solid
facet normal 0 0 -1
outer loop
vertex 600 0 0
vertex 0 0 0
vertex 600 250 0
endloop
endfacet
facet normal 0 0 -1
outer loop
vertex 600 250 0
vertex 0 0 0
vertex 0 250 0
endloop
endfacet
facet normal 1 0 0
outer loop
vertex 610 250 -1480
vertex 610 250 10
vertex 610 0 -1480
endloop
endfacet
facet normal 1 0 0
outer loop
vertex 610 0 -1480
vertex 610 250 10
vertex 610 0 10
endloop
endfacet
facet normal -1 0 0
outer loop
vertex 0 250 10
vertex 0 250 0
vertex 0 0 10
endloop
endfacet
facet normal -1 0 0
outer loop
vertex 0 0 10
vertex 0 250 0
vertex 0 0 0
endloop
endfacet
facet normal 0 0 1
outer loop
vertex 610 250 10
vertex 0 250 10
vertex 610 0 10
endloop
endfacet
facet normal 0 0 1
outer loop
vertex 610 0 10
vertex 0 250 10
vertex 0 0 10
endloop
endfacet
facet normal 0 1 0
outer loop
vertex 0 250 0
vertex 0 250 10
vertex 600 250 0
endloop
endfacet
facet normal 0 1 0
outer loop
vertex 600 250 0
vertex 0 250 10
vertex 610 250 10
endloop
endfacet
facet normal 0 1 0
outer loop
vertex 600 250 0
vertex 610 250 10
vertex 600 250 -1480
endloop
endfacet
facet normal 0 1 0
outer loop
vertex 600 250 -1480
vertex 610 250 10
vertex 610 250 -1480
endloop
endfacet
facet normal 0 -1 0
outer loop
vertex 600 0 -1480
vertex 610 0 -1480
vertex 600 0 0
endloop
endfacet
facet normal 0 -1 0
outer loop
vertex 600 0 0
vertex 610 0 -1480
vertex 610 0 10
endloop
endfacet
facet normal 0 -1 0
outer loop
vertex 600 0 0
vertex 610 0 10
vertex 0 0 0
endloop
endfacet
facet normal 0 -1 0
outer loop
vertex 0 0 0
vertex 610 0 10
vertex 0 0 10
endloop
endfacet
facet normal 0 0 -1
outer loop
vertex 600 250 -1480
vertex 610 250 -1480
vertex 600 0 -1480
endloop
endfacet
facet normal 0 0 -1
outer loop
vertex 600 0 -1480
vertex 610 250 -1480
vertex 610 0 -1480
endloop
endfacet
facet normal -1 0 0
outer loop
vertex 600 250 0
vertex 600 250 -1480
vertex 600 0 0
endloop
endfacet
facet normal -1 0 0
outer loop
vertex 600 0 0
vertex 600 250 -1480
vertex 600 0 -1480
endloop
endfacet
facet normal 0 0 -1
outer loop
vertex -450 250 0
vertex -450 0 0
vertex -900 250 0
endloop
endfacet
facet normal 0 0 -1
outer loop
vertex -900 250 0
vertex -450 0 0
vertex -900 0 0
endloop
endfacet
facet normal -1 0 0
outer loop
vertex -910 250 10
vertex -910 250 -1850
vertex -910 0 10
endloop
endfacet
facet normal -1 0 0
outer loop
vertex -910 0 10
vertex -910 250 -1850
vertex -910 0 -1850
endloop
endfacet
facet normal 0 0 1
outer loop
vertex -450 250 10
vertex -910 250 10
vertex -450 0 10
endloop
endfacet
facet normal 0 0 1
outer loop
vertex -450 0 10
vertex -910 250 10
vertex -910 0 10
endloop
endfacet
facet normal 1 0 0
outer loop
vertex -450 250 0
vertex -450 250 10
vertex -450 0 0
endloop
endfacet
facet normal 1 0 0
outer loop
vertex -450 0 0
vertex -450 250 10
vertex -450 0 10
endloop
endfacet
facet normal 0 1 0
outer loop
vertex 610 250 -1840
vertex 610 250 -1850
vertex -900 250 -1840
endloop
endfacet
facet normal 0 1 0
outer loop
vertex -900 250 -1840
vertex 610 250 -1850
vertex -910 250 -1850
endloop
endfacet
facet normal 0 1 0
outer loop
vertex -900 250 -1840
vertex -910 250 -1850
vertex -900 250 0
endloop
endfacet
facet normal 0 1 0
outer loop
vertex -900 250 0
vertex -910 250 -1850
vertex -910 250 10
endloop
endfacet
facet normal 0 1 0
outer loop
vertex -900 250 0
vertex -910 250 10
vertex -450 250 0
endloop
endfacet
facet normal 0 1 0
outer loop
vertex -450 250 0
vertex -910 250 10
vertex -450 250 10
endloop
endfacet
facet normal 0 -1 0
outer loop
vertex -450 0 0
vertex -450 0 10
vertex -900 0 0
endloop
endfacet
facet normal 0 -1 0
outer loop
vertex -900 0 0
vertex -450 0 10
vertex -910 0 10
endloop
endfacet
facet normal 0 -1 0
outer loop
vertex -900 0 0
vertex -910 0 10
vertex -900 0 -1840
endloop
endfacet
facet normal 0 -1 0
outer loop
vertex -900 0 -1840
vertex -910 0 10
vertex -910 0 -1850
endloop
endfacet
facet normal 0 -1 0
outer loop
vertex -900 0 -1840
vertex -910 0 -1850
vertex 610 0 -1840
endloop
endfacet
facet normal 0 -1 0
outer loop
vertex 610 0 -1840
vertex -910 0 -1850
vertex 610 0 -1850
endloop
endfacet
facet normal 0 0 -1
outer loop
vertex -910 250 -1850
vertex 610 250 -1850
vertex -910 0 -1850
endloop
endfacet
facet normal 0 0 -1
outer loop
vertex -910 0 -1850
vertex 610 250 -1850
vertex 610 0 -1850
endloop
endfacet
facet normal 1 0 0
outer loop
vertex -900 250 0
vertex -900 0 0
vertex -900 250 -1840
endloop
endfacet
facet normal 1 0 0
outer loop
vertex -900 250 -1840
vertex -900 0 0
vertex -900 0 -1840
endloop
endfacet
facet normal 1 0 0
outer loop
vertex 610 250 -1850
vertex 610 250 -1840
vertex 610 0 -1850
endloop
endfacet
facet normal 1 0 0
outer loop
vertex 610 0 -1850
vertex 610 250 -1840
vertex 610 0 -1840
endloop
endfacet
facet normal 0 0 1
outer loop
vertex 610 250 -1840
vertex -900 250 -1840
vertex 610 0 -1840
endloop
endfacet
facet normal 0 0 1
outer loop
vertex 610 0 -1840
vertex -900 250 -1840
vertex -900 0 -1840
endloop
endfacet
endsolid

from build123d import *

# Parameters (mm, degrees)
SKETCH2_W           = 460
SKETCH2_H           = 10
BOSS_EXTRUDE2_DEPTH = 250
BOSS_EXTRUDE3_DEPTH = 250
BOSS_EXTRUDE4_DEPTH = 250
SKETCH2_14_W        = 10
SKETCH2_14_H        = 1480
BOSS_EXTRUDE5_DEPTH = 250
SKETCH2_15_W        = 1510
SKETCH2_15_H        = 10
BOSS_EXTRUDE6_DEPTH = 250


with BuildPart() as part:
    # Sketch2 → Boss-Extrude2 (new body)
    with BuildSketch(Plane(origin=(0, 0, 0), x_dir=(1, 0, 0), z_dir=(0, 1, 0))):
        with Locations((-680, -5)):
            Rectangle(SKETCH2_W, SKETCH2_H)
    extrude(amount=BOSS_EXTRUDE2_DEPTH)

    # Sketch2<11> → Boss-Extrude3 (add)
    with BuildSketch(Plane(origin=(0, 0, 0), x_dir=(1, 0, 0), z_dir=(0, 1, 0))):
        Polygon((-910, 1850), (-910, 0), (-900, 0), (-900, 1840), (-900, 1850), align=None)
    extrude(amount=BOSS_EXTRUDE3_DEPTH)

    # Sketch2<15> → Boss-Extrude6 (add)
    with BuildSketch(Plane(origin=(0, 0, 0), x_dir=(1, 0, 0), z_dir=(0, 1, 0))):
        with Locations((-145, 1845)):
            Rectangle(SKETCH2_15_W, SKETCH2_15_H)
    extrude(amount=BOSS_EXTRUDE6_DEPTH)


with BuildPart() as body_2:
    # Sketch2<12> → Boss-Extrude4 (new body)
    with BuildSketch(Plane(origin=(0, 0, 0), x_dir=(1, 0, 0), z_dir=(0, 1, 0))):
        Polygon((600, 0), (0, 0), (0, -10), (610, -10), (610, 0), align=None)
    extrude(amount=BOSS_EXTRUDE4_DEPTH)

    # Sketch2<14> → Boss-Extrude5 (add)
    with BuildSketch(Plane(origin=(0, 0, 0), x_dir=(1, 0, 0), z_dir=(0, 1, 0))):
        with Locations((605, 740)):
            Rectangle(SKETCH2_14_W, SKETCH2_14_H)
    extrude(amount=BOSS_EXTRUDE5_DEPTH)


solid = Compound([part.part, body_2.part])
